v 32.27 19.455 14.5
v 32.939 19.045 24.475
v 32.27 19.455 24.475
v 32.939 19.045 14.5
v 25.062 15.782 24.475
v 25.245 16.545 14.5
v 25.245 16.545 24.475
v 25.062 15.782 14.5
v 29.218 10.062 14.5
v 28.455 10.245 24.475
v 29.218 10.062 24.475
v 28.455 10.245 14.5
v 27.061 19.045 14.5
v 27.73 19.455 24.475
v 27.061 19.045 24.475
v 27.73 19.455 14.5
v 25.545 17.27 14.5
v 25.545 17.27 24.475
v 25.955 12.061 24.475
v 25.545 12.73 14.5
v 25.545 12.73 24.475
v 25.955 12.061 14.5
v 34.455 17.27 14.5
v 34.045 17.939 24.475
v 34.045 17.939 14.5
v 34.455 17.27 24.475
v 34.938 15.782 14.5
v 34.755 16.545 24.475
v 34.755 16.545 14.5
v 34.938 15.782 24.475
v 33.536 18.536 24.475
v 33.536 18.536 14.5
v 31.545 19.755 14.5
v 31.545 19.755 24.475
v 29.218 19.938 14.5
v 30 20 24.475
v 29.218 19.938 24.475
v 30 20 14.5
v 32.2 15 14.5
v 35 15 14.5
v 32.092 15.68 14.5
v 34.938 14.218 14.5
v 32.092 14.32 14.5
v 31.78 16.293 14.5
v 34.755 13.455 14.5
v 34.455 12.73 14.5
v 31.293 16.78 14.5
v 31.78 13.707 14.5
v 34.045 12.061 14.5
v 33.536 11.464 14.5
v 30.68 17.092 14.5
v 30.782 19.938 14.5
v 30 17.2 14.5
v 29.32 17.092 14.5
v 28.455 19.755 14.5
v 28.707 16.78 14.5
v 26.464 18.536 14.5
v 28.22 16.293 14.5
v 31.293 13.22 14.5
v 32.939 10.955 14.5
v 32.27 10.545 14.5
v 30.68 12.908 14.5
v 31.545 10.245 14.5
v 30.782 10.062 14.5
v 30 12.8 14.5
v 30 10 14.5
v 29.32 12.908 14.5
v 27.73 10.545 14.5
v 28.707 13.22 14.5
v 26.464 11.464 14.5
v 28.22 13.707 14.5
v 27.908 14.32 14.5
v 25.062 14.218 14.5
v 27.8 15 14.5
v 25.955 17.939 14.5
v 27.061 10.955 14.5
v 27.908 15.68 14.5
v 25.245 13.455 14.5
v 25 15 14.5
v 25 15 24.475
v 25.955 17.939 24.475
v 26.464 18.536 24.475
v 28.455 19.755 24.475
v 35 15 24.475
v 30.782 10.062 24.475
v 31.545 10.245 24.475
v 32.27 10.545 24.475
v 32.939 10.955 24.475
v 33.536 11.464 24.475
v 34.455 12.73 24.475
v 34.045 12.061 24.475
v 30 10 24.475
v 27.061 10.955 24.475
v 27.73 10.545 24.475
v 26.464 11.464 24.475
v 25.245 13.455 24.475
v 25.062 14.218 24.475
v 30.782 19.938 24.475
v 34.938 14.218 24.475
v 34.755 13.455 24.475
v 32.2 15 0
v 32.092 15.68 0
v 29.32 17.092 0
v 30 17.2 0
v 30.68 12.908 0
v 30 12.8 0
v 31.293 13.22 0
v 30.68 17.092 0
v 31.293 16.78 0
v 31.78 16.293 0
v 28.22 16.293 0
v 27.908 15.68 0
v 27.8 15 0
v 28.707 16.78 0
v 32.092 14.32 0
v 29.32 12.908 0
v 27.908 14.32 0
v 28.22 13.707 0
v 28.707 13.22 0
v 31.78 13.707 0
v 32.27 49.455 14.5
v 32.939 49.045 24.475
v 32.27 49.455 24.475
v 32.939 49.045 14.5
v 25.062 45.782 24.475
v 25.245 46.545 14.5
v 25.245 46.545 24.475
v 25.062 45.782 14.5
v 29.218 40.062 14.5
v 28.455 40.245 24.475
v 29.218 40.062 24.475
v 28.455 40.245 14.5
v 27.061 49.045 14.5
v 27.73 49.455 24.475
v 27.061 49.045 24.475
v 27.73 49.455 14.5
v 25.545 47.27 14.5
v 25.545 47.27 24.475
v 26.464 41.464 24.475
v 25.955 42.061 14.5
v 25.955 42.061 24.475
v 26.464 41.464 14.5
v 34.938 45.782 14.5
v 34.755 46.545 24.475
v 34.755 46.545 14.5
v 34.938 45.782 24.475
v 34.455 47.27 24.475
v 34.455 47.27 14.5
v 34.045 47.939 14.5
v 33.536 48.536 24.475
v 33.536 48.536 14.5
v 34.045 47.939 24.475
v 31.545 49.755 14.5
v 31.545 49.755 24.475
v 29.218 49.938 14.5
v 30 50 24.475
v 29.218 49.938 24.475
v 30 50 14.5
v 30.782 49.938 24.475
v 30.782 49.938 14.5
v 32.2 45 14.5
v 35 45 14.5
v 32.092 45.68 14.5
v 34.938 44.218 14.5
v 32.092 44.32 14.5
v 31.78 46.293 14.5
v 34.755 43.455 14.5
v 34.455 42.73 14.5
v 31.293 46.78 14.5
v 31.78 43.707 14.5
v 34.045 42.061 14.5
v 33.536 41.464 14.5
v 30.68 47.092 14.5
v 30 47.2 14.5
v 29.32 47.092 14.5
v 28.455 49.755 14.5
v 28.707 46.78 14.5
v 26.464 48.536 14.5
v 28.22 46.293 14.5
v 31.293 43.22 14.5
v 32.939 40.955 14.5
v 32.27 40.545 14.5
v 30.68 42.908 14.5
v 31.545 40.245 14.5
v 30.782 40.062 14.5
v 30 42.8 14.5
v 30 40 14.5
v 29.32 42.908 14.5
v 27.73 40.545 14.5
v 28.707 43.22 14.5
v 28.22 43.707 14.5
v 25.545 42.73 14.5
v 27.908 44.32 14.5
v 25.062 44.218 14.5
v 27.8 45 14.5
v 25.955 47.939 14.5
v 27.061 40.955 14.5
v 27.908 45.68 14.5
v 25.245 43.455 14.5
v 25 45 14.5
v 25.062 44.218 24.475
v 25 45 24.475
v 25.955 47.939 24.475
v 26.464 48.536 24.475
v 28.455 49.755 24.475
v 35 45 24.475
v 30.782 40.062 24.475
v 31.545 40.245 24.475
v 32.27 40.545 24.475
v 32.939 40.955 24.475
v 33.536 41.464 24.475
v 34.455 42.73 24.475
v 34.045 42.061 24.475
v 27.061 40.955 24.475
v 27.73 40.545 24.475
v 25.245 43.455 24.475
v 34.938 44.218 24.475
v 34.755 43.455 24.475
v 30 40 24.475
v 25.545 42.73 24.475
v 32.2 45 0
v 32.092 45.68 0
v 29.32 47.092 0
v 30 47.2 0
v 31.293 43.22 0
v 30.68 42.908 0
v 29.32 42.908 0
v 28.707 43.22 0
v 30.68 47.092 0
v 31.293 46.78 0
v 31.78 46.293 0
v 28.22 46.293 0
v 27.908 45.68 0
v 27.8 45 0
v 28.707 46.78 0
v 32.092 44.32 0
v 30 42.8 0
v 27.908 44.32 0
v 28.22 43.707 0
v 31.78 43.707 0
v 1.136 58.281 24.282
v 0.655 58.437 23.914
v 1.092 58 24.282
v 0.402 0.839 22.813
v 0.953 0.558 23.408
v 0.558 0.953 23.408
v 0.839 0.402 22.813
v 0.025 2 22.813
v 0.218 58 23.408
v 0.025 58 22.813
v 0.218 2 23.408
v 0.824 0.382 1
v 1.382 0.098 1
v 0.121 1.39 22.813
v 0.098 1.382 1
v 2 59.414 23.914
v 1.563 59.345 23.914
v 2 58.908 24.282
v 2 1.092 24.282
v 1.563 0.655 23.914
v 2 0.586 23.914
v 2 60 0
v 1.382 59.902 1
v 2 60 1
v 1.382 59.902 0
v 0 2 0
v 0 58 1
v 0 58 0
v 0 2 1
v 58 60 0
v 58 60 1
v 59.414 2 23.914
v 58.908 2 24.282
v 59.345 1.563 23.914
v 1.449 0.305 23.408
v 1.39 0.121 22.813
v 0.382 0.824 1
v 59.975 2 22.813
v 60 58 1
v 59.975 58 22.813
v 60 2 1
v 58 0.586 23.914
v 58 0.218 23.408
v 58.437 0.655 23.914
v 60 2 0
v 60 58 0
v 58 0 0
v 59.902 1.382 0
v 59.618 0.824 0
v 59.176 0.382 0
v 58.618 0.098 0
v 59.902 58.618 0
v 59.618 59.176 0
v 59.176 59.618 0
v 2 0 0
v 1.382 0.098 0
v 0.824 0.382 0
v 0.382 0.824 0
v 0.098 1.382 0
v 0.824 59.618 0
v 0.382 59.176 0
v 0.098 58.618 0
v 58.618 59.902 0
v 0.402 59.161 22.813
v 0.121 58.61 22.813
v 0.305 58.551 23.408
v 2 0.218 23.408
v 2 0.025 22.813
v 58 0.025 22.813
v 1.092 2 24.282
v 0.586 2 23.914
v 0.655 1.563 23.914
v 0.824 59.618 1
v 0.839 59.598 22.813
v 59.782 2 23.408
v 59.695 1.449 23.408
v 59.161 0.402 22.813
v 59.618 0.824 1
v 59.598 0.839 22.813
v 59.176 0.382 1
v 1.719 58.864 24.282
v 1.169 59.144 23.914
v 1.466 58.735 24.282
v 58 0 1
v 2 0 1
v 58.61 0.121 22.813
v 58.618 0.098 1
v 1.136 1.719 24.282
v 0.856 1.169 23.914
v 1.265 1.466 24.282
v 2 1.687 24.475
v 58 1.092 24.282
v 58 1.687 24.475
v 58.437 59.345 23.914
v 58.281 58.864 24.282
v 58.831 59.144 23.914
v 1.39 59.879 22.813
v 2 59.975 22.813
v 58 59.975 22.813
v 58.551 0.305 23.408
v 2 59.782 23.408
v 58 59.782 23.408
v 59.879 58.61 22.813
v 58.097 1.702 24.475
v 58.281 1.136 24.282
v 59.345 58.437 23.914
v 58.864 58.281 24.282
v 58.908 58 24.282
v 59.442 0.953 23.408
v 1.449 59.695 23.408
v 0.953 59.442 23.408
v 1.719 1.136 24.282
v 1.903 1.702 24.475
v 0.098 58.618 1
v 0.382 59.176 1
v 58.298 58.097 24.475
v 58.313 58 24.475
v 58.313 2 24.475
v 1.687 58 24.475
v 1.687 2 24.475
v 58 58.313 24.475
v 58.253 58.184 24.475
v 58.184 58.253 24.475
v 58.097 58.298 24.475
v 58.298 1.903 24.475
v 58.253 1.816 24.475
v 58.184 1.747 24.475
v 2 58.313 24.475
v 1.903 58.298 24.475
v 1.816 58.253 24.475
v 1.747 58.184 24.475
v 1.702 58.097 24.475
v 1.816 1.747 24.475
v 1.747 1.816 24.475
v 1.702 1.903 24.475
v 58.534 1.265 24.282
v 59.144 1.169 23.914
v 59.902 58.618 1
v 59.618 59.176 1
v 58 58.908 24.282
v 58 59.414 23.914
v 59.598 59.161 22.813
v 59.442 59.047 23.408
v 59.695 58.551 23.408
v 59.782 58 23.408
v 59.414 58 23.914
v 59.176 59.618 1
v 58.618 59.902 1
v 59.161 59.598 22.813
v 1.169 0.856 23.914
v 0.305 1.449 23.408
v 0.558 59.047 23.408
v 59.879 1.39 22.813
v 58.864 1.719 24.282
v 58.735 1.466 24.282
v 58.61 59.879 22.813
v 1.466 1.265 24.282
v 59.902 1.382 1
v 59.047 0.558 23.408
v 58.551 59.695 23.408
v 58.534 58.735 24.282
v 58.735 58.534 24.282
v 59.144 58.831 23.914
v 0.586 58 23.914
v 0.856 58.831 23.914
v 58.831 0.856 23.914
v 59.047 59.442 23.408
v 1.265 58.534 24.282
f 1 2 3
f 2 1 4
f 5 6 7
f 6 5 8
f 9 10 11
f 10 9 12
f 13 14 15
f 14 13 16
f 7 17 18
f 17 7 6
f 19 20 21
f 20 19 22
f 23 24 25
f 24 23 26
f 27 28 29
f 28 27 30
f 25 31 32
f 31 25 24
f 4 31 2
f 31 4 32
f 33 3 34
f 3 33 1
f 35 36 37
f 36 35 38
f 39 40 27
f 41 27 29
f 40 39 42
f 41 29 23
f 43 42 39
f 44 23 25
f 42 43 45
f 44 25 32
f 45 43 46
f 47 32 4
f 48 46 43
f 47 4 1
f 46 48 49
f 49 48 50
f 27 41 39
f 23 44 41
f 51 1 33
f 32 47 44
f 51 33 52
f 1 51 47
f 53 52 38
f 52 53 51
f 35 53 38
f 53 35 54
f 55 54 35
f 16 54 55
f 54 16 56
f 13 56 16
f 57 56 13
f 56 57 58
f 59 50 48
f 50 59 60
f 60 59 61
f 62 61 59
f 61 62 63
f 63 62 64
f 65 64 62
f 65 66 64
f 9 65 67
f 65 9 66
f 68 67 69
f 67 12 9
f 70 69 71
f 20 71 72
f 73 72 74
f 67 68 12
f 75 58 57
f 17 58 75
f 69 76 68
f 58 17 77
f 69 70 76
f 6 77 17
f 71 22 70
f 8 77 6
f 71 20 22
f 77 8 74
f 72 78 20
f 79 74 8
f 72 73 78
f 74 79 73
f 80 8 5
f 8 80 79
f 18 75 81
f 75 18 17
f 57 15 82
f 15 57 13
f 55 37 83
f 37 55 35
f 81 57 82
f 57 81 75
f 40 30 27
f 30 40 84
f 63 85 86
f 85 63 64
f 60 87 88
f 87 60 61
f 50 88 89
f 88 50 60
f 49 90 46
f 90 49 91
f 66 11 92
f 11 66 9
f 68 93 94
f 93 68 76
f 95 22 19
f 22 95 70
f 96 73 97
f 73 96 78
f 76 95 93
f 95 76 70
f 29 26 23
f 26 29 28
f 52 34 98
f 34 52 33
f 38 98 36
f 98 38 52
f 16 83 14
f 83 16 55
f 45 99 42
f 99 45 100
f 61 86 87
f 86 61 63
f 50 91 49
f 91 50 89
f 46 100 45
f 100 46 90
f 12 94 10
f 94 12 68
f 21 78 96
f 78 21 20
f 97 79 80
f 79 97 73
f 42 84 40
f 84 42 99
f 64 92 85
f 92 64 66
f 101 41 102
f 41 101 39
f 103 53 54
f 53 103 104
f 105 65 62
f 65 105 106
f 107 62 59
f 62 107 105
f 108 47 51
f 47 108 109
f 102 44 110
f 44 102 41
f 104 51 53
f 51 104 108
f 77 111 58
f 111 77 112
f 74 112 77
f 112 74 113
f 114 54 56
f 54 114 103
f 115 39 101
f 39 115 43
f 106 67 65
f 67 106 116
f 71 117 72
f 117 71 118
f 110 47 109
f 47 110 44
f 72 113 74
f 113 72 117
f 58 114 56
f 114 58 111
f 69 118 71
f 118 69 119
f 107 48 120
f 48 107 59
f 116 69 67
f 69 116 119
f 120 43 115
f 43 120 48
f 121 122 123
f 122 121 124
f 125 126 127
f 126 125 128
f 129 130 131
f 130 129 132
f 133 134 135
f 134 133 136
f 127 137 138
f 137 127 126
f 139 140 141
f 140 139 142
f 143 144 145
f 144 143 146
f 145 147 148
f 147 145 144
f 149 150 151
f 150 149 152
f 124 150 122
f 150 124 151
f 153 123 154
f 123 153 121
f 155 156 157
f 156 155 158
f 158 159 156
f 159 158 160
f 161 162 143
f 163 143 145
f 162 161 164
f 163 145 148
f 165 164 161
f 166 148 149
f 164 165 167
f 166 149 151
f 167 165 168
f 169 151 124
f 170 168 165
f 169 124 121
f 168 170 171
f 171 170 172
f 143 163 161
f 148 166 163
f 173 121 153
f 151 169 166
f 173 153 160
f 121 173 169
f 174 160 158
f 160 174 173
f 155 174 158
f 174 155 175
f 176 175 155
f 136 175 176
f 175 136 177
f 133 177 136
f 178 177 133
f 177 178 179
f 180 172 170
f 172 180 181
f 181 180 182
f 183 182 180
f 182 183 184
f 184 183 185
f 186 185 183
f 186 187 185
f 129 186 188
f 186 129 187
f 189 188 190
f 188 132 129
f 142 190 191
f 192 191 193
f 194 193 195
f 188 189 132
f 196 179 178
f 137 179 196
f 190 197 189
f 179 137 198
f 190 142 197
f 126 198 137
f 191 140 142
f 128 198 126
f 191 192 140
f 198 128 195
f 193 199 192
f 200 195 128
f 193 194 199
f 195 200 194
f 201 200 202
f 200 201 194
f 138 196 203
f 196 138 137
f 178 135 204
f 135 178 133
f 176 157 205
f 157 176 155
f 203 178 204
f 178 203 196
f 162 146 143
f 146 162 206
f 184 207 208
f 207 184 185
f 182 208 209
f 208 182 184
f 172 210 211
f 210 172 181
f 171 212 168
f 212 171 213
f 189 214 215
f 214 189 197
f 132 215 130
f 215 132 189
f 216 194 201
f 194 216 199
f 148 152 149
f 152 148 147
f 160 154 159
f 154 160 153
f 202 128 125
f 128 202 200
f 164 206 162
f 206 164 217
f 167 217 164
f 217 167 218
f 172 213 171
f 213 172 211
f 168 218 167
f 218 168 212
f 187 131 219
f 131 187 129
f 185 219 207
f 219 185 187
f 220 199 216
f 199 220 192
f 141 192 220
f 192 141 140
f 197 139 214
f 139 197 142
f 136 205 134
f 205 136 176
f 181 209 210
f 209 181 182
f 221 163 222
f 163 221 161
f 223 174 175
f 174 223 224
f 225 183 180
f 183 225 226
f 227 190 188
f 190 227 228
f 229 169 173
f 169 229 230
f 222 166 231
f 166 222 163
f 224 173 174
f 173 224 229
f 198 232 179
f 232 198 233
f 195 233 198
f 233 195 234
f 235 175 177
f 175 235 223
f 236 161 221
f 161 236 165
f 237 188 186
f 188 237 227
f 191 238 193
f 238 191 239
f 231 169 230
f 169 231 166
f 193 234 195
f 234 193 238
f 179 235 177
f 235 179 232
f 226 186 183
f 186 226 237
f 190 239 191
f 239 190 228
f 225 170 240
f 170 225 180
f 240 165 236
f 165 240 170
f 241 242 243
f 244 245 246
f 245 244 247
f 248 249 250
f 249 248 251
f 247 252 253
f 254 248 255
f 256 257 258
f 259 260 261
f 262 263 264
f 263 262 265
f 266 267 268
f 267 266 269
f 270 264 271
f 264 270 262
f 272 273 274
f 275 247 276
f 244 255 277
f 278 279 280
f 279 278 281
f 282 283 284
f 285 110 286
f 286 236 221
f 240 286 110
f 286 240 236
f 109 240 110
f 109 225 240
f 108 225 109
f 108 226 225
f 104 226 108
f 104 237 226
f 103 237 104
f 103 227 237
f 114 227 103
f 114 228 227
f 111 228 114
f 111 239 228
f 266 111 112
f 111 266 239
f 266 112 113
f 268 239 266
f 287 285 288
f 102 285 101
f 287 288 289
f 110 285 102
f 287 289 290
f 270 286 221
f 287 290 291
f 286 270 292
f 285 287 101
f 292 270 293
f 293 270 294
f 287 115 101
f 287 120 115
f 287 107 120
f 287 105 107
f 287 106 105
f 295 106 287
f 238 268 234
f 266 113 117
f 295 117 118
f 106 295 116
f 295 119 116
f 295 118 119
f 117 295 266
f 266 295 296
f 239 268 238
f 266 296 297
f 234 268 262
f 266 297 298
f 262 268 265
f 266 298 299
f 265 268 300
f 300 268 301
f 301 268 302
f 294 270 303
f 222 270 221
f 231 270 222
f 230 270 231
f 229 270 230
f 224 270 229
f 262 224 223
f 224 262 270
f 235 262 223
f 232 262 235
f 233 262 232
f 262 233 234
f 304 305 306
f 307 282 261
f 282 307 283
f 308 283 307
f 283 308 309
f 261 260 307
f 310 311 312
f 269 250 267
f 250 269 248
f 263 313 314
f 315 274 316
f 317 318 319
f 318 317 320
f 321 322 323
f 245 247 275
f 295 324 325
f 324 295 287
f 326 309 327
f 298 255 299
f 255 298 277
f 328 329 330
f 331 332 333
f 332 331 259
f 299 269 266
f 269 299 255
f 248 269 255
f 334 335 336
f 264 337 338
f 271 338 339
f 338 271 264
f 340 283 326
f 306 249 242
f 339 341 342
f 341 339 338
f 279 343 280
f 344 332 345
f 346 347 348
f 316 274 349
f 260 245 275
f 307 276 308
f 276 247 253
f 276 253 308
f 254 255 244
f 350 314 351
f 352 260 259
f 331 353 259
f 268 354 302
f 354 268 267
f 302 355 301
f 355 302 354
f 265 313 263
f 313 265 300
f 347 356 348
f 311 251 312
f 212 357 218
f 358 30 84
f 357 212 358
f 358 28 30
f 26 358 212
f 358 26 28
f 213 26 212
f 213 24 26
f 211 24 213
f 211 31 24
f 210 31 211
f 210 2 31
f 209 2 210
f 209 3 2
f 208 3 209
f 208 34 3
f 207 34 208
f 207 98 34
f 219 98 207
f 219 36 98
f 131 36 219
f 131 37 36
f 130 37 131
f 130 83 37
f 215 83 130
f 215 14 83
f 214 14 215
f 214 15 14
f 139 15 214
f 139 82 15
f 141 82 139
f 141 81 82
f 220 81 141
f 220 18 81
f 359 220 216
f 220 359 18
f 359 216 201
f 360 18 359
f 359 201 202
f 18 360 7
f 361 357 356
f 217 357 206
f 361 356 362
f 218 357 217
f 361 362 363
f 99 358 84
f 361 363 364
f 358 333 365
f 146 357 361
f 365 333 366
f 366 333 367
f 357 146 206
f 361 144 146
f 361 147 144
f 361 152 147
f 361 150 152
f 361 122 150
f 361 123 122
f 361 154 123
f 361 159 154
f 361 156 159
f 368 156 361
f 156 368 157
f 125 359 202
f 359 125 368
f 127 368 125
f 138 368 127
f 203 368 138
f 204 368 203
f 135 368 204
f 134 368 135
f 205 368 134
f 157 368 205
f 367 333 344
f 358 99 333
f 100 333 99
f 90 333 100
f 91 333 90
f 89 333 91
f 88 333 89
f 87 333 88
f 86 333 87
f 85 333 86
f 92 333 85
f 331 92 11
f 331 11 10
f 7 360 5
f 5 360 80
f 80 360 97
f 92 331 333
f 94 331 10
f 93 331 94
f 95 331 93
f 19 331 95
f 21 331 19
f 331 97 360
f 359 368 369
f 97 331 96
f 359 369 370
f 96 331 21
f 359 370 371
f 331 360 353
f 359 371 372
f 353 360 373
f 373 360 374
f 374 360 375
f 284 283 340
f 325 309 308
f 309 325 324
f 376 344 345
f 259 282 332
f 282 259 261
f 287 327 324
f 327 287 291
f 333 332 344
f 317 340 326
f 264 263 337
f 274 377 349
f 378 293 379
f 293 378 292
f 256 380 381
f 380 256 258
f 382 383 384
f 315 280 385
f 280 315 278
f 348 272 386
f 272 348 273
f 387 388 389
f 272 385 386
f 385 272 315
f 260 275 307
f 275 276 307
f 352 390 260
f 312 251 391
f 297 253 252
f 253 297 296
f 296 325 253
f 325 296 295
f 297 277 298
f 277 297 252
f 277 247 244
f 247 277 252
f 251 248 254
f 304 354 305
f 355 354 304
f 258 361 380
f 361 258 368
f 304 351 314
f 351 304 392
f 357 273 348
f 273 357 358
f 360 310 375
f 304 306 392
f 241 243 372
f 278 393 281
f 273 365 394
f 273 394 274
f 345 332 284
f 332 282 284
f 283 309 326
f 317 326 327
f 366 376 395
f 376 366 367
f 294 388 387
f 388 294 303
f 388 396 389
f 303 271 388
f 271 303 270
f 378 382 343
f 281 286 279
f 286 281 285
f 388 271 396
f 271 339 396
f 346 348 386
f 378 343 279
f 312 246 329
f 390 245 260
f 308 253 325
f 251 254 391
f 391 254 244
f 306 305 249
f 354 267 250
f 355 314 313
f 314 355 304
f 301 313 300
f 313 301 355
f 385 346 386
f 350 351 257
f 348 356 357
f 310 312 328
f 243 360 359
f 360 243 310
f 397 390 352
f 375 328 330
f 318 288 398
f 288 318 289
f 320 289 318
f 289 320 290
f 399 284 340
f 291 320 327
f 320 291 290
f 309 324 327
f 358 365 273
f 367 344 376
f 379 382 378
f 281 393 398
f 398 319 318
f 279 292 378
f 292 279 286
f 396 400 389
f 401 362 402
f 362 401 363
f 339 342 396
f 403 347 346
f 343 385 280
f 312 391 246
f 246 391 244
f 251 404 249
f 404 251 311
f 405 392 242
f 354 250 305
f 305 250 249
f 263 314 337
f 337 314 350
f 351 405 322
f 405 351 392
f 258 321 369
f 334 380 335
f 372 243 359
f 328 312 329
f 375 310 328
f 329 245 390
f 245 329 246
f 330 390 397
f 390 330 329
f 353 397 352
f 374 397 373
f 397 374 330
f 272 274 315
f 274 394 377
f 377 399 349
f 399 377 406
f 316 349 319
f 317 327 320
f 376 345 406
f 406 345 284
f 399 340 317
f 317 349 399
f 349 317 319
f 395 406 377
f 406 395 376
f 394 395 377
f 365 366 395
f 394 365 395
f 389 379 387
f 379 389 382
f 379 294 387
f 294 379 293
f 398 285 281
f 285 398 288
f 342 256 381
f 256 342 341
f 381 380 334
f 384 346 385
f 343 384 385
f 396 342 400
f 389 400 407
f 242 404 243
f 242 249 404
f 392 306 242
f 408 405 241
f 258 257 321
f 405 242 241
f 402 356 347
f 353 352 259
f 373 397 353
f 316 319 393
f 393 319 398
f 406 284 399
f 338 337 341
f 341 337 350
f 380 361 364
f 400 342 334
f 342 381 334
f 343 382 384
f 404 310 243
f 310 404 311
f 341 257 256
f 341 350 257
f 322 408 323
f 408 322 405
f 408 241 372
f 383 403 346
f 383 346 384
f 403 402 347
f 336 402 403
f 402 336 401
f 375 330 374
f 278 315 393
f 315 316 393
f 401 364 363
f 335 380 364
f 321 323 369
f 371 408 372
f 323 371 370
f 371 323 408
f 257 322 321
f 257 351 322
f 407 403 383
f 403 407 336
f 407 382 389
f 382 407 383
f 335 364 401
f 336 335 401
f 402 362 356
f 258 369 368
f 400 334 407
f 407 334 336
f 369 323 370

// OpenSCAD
WIDTH = 60;
HEIGHT = 24.5;
ROUND = 2;

union() {
    difference() {
        hull() {
            //translate([0, 0, ROUND]) cube([WIDTH, WIDTH, HEIGHT-ROUND]);
            translate([ROUND, ROUND, 0]) cylinder(h=1, r=ROUND, $fn=20);
            translate([WIDTH-ROUND, ROUND, 0]) cylinder(h=1, r=ROUND, $fn=20);
            translate([ROUND, WIDTH-ROUND, 0]) cylinder(h=1, r=ROUND, $fn=20);
            translate([WIDTH-ROUND, WIDTH-ROUND, 0]) cylinder(h=1, r=ROUND, $fn=20);

            translate([ROUND, ROUND, HEIGHT-ROUND]) sphere(ROUND, $fn=20);
            translate([WIDTH-ROUND, ROUND, HEIGHT-ROUND]) sphere(ROUND, $fn=20);
            translate([ROUND, WIDTH-ROUND, HEIGHT-ROUND]) sphere(ROUND, $fn=20);
            translate([WIDTH-ROUND, WIDTH-ROUND, HEIGHT-ROUND]) sphere(ROUND, $fn=20);
        }
        for (p=[15, WIDTH-15]) {
            translate([WIDTH/2, p, HEIGHT-10]) cylinder(h=100, d=10, $fn=40);
            translate([WIDTH/2, p, -9.9]) cylinder(h=100, d=4.4, $fn=20);
        }
    }
}
